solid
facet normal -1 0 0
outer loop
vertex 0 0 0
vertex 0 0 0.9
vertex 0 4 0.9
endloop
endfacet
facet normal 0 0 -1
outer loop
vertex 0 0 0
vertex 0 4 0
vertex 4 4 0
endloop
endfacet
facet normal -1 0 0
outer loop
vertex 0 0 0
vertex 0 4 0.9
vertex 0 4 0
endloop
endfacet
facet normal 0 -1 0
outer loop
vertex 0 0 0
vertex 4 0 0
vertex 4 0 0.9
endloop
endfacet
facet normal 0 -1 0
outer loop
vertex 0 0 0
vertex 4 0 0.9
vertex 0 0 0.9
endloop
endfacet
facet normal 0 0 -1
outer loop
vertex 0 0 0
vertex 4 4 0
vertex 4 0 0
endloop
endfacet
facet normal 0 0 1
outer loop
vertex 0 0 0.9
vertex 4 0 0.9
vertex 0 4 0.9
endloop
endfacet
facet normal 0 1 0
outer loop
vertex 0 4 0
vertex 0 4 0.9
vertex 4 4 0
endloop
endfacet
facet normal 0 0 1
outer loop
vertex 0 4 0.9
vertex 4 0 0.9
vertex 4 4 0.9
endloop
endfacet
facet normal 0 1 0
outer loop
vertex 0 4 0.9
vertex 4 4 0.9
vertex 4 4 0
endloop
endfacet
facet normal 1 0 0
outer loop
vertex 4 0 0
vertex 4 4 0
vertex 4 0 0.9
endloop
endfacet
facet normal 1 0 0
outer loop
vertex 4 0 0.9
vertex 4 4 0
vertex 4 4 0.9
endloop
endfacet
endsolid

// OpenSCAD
/* Warning, this is a very basic generator with a lot of approximation 
input data : [QFN, 8EX, 4x4x0.9mm, 16, , B, C04-00259B]
generated by com.zoubworld.electronics.cad.model3d.Basic
Date : Sun Feb 15 10:50:48 CET 2026
*/

//body
color("black")
translate([0,0,0])
cube([4.0,4.0,0.9], center=false);
